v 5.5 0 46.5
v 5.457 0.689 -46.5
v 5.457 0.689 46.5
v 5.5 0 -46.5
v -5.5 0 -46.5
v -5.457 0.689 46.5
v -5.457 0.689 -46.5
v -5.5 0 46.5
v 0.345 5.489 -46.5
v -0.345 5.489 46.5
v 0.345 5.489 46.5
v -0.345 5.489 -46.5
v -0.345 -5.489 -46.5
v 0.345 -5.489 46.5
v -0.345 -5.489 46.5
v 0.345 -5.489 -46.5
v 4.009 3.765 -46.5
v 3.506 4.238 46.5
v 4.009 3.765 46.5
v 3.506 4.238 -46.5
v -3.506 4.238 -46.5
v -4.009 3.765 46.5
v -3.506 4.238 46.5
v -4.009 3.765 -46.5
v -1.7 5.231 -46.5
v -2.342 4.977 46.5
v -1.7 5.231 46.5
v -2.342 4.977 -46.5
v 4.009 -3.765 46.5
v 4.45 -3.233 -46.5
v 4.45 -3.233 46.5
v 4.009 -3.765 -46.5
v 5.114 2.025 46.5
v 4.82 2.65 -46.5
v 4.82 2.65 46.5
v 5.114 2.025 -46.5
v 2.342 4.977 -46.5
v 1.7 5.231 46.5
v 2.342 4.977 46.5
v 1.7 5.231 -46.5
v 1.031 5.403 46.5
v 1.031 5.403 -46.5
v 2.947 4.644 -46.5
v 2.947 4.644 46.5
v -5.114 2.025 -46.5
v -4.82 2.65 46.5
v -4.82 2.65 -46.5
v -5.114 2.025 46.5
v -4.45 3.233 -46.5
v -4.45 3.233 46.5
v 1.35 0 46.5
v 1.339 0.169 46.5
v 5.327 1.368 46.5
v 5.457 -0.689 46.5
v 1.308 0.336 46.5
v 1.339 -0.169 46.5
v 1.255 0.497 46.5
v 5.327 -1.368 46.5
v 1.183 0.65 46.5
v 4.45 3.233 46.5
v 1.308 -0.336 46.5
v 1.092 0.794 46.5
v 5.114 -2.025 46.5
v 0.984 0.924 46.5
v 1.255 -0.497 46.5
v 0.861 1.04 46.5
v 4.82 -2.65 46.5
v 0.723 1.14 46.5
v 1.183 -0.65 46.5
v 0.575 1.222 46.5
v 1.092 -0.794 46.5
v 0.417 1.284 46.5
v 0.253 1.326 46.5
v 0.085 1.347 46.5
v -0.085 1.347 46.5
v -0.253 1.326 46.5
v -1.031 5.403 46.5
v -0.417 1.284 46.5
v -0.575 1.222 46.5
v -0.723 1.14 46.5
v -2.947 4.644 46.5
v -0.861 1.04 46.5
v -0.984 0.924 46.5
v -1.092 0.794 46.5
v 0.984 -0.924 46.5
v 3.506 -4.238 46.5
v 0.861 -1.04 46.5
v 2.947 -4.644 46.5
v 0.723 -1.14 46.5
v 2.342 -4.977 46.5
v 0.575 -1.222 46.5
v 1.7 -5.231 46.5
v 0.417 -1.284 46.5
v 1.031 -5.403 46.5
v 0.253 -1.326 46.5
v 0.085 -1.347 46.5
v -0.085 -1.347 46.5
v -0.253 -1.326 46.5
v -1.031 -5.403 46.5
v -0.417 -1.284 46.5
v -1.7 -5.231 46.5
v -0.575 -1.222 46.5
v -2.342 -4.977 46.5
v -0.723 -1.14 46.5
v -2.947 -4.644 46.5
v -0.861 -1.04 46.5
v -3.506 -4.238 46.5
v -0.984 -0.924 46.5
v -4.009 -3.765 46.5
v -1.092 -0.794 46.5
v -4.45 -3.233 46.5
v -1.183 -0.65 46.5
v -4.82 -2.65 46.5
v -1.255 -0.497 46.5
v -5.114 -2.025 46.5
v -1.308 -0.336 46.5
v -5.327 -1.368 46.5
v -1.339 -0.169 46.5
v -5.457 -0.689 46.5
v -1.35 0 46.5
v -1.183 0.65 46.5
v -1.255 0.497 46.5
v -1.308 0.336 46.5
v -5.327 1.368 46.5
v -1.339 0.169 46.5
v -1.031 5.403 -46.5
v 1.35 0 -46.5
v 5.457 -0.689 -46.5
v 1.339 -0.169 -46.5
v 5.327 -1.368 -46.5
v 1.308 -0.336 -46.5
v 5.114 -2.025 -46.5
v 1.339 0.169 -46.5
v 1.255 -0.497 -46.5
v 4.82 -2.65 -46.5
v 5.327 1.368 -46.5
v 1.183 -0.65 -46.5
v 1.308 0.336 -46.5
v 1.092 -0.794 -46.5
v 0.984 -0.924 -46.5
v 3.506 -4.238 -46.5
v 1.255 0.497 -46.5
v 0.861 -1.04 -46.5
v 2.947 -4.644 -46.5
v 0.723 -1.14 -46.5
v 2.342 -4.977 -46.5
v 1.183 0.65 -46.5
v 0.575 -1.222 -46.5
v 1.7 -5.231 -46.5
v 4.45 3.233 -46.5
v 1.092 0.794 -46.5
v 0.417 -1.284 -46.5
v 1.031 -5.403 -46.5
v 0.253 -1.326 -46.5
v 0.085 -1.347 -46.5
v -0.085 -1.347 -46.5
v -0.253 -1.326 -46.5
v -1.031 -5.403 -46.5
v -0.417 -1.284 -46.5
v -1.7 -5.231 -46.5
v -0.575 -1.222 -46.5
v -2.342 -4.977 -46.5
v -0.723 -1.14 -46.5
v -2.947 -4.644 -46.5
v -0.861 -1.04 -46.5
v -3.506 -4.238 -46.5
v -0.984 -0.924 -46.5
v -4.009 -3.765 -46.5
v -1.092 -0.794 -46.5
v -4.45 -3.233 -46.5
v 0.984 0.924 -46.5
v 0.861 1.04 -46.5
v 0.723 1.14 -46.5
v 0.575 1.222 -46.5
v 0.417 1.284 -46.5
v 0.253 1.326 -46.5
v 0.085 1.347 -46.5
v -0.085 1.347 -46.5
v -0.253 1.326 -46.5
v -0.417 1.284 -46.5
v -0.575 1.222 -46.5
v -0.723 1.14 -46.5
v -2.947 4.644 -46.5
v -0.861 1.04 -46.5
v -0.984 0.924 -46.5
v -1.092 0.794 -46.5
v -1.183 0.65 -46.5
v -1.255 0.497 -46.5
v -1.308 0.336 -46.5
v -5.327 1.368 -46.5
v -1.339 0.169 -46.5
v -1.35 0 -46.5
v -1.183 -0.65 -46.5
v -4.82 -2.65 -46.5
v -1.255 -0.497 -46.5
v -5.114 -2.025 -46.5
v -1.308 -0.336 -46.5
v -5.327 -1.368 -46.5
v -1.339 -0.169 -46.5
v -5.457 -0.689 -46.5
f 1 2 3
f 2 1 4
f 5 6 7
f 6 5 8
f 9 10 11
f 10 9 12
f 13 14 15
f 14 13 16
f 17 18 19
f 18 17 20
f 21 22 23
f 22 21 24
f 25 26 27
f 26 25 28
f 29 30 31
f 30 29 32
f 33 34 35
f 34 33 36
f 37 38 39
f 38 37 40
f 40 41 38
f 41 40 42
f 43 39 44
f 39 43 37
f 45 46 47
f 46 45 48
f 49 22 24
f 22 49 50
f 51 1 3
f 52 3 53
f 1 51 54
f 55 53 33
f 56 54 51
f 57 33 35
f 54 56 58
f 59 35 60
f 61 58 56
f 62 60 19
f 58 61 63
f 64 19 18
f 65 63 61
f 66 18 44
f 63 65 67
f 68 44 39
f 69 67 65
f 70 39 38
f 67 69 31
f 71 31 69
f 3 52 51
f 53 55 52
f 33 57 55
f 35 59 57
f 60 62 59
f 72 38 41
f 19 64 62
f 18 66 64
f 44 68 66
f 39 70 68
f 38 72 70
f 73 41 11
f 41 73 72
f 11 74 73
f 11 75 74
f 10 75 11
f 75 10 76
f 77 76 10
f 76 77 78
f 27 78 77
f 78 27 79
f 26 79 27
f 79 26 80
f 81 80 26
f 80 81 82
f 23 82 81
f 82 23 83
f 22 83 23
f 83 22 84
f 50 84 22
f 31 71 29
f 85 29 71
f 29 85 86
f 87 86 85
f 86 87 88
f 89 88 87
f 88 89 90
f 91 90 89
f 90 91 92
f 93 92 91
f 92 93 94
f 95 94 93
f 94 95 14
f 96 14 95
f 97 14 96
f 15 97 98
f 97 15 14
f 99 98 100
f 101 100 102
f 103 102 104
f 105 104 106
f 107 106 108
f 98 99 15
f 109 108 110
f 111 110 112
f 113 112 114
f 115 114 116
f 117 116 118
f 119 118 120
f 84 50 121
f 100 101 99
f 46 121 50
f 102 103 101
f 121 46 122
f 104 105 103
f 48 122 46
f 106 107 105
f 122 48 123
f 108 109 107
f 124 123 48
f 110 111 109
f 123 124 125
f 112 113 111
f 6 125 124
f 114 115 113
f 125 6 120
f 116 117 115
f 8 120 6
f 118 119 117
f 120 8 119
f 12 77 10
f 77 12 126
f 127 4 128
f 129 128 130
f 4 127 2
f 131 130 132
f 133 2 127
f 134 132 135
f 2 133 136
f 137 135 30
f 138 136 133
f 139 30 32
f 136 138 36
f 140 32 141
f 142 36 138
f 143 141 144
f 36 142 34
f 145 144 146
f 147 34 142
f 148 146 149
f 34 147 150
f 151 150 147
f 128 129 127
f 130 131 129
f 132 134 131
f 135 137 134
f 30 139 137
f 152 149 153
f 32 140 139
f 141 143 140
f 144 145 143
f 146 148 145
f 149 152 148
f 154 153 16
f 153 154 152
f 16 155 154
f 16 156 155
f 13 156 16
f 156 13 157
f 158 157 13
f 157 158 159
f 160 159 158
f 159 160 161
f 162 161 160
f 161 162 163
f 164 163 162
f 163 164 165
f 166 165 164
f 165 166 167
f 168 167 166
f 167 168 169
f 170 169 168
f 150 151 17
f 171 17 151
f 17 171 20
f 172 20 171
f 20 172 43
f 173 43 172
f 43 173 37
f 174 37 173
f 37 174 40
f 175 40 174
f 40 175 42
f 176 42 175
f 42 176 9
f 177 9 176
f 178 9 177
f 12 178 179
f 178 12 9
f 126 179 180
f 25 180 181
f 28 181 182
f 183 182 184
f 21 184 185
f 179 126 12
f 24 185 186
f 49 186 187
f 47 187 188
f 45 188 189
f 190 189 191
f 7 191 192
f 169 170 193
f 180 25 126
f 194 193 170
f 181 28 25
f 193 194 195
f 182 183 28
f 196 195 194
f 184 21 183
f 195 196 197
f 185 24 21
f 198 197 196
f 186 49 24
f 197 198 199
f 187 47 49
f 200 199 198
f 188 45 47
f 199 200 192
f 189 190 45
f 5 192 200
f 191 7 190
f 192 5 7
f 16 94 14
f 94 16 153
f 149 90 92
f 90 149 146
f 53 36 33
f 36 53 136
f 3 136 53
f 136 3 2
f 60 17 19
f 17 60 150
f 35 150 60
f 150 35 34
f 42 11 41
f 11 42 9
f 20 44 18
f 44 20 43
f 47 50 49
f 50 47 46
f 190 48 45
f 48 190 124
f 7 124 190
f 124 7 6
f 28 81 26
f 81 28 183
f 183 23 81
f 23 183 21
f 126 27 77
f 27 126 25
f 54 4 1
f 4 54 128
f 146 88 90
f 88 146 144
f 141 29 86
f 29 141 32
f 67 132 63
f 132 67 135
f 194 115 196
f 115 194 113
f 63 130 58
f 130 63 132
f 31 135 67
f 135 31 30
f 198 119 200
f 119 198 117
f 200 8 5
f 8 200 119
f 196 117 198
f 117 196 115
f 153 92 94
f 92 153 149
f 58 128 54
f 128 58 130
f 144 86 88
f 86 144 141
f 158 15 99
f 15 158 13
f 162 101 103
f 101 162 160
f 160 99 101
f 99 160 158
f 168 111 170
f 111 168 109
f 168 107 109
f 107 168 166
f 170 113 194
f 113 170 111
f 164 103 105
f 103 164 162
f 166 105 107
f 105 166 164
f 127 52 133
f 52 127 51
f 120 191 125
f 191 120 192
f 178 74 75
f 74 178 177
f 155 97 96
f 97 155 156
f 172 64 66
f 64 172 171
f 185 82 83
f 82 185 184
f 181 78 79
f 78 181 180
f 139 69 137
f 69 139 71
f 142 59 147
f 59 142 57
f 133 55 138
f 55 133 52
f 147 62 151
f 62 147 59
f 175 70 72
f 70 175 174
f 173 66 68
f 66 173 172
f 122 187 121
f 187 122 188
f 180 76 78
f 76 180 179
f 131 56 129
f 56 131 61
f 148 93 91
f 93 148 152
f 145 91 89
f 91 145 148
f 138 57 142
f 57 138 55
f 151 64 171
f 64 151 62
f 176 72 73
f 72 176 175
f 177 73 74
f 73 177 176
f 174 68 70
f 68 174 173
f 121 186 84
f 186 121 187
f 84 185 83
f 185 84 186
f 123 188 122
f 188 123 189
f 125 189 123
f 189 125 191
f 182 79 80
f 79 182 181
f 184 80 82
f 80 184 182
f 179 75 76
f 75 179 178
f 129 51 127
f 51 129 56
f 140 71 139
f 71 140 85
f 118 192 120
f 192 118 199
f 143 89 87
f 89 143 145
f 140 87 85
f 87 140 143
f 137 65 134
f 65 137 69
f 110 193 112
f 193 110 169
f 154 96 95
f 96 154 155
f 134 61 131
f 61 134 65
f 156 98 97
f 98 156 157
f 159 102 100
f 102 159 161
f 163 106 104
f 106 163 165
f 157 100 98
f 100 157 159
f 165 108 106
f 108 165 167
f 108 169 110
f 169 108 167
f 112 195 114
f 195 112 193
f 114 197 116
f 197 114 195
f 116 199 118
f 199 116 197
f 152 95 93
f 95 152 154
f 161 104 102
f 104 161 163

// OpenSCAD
$fn = 50;


difference() {
	union() {
		translate(v = [0, 0, -46.5000000000]) {
			cylinder(h = 93, r = 5.5000000000);
		}
	}
	union() {
		translate(v = [0, 0, -100.0000000000]) {
			cylinder(h = 200, r = 1.3500000000);
		}
	}
}
